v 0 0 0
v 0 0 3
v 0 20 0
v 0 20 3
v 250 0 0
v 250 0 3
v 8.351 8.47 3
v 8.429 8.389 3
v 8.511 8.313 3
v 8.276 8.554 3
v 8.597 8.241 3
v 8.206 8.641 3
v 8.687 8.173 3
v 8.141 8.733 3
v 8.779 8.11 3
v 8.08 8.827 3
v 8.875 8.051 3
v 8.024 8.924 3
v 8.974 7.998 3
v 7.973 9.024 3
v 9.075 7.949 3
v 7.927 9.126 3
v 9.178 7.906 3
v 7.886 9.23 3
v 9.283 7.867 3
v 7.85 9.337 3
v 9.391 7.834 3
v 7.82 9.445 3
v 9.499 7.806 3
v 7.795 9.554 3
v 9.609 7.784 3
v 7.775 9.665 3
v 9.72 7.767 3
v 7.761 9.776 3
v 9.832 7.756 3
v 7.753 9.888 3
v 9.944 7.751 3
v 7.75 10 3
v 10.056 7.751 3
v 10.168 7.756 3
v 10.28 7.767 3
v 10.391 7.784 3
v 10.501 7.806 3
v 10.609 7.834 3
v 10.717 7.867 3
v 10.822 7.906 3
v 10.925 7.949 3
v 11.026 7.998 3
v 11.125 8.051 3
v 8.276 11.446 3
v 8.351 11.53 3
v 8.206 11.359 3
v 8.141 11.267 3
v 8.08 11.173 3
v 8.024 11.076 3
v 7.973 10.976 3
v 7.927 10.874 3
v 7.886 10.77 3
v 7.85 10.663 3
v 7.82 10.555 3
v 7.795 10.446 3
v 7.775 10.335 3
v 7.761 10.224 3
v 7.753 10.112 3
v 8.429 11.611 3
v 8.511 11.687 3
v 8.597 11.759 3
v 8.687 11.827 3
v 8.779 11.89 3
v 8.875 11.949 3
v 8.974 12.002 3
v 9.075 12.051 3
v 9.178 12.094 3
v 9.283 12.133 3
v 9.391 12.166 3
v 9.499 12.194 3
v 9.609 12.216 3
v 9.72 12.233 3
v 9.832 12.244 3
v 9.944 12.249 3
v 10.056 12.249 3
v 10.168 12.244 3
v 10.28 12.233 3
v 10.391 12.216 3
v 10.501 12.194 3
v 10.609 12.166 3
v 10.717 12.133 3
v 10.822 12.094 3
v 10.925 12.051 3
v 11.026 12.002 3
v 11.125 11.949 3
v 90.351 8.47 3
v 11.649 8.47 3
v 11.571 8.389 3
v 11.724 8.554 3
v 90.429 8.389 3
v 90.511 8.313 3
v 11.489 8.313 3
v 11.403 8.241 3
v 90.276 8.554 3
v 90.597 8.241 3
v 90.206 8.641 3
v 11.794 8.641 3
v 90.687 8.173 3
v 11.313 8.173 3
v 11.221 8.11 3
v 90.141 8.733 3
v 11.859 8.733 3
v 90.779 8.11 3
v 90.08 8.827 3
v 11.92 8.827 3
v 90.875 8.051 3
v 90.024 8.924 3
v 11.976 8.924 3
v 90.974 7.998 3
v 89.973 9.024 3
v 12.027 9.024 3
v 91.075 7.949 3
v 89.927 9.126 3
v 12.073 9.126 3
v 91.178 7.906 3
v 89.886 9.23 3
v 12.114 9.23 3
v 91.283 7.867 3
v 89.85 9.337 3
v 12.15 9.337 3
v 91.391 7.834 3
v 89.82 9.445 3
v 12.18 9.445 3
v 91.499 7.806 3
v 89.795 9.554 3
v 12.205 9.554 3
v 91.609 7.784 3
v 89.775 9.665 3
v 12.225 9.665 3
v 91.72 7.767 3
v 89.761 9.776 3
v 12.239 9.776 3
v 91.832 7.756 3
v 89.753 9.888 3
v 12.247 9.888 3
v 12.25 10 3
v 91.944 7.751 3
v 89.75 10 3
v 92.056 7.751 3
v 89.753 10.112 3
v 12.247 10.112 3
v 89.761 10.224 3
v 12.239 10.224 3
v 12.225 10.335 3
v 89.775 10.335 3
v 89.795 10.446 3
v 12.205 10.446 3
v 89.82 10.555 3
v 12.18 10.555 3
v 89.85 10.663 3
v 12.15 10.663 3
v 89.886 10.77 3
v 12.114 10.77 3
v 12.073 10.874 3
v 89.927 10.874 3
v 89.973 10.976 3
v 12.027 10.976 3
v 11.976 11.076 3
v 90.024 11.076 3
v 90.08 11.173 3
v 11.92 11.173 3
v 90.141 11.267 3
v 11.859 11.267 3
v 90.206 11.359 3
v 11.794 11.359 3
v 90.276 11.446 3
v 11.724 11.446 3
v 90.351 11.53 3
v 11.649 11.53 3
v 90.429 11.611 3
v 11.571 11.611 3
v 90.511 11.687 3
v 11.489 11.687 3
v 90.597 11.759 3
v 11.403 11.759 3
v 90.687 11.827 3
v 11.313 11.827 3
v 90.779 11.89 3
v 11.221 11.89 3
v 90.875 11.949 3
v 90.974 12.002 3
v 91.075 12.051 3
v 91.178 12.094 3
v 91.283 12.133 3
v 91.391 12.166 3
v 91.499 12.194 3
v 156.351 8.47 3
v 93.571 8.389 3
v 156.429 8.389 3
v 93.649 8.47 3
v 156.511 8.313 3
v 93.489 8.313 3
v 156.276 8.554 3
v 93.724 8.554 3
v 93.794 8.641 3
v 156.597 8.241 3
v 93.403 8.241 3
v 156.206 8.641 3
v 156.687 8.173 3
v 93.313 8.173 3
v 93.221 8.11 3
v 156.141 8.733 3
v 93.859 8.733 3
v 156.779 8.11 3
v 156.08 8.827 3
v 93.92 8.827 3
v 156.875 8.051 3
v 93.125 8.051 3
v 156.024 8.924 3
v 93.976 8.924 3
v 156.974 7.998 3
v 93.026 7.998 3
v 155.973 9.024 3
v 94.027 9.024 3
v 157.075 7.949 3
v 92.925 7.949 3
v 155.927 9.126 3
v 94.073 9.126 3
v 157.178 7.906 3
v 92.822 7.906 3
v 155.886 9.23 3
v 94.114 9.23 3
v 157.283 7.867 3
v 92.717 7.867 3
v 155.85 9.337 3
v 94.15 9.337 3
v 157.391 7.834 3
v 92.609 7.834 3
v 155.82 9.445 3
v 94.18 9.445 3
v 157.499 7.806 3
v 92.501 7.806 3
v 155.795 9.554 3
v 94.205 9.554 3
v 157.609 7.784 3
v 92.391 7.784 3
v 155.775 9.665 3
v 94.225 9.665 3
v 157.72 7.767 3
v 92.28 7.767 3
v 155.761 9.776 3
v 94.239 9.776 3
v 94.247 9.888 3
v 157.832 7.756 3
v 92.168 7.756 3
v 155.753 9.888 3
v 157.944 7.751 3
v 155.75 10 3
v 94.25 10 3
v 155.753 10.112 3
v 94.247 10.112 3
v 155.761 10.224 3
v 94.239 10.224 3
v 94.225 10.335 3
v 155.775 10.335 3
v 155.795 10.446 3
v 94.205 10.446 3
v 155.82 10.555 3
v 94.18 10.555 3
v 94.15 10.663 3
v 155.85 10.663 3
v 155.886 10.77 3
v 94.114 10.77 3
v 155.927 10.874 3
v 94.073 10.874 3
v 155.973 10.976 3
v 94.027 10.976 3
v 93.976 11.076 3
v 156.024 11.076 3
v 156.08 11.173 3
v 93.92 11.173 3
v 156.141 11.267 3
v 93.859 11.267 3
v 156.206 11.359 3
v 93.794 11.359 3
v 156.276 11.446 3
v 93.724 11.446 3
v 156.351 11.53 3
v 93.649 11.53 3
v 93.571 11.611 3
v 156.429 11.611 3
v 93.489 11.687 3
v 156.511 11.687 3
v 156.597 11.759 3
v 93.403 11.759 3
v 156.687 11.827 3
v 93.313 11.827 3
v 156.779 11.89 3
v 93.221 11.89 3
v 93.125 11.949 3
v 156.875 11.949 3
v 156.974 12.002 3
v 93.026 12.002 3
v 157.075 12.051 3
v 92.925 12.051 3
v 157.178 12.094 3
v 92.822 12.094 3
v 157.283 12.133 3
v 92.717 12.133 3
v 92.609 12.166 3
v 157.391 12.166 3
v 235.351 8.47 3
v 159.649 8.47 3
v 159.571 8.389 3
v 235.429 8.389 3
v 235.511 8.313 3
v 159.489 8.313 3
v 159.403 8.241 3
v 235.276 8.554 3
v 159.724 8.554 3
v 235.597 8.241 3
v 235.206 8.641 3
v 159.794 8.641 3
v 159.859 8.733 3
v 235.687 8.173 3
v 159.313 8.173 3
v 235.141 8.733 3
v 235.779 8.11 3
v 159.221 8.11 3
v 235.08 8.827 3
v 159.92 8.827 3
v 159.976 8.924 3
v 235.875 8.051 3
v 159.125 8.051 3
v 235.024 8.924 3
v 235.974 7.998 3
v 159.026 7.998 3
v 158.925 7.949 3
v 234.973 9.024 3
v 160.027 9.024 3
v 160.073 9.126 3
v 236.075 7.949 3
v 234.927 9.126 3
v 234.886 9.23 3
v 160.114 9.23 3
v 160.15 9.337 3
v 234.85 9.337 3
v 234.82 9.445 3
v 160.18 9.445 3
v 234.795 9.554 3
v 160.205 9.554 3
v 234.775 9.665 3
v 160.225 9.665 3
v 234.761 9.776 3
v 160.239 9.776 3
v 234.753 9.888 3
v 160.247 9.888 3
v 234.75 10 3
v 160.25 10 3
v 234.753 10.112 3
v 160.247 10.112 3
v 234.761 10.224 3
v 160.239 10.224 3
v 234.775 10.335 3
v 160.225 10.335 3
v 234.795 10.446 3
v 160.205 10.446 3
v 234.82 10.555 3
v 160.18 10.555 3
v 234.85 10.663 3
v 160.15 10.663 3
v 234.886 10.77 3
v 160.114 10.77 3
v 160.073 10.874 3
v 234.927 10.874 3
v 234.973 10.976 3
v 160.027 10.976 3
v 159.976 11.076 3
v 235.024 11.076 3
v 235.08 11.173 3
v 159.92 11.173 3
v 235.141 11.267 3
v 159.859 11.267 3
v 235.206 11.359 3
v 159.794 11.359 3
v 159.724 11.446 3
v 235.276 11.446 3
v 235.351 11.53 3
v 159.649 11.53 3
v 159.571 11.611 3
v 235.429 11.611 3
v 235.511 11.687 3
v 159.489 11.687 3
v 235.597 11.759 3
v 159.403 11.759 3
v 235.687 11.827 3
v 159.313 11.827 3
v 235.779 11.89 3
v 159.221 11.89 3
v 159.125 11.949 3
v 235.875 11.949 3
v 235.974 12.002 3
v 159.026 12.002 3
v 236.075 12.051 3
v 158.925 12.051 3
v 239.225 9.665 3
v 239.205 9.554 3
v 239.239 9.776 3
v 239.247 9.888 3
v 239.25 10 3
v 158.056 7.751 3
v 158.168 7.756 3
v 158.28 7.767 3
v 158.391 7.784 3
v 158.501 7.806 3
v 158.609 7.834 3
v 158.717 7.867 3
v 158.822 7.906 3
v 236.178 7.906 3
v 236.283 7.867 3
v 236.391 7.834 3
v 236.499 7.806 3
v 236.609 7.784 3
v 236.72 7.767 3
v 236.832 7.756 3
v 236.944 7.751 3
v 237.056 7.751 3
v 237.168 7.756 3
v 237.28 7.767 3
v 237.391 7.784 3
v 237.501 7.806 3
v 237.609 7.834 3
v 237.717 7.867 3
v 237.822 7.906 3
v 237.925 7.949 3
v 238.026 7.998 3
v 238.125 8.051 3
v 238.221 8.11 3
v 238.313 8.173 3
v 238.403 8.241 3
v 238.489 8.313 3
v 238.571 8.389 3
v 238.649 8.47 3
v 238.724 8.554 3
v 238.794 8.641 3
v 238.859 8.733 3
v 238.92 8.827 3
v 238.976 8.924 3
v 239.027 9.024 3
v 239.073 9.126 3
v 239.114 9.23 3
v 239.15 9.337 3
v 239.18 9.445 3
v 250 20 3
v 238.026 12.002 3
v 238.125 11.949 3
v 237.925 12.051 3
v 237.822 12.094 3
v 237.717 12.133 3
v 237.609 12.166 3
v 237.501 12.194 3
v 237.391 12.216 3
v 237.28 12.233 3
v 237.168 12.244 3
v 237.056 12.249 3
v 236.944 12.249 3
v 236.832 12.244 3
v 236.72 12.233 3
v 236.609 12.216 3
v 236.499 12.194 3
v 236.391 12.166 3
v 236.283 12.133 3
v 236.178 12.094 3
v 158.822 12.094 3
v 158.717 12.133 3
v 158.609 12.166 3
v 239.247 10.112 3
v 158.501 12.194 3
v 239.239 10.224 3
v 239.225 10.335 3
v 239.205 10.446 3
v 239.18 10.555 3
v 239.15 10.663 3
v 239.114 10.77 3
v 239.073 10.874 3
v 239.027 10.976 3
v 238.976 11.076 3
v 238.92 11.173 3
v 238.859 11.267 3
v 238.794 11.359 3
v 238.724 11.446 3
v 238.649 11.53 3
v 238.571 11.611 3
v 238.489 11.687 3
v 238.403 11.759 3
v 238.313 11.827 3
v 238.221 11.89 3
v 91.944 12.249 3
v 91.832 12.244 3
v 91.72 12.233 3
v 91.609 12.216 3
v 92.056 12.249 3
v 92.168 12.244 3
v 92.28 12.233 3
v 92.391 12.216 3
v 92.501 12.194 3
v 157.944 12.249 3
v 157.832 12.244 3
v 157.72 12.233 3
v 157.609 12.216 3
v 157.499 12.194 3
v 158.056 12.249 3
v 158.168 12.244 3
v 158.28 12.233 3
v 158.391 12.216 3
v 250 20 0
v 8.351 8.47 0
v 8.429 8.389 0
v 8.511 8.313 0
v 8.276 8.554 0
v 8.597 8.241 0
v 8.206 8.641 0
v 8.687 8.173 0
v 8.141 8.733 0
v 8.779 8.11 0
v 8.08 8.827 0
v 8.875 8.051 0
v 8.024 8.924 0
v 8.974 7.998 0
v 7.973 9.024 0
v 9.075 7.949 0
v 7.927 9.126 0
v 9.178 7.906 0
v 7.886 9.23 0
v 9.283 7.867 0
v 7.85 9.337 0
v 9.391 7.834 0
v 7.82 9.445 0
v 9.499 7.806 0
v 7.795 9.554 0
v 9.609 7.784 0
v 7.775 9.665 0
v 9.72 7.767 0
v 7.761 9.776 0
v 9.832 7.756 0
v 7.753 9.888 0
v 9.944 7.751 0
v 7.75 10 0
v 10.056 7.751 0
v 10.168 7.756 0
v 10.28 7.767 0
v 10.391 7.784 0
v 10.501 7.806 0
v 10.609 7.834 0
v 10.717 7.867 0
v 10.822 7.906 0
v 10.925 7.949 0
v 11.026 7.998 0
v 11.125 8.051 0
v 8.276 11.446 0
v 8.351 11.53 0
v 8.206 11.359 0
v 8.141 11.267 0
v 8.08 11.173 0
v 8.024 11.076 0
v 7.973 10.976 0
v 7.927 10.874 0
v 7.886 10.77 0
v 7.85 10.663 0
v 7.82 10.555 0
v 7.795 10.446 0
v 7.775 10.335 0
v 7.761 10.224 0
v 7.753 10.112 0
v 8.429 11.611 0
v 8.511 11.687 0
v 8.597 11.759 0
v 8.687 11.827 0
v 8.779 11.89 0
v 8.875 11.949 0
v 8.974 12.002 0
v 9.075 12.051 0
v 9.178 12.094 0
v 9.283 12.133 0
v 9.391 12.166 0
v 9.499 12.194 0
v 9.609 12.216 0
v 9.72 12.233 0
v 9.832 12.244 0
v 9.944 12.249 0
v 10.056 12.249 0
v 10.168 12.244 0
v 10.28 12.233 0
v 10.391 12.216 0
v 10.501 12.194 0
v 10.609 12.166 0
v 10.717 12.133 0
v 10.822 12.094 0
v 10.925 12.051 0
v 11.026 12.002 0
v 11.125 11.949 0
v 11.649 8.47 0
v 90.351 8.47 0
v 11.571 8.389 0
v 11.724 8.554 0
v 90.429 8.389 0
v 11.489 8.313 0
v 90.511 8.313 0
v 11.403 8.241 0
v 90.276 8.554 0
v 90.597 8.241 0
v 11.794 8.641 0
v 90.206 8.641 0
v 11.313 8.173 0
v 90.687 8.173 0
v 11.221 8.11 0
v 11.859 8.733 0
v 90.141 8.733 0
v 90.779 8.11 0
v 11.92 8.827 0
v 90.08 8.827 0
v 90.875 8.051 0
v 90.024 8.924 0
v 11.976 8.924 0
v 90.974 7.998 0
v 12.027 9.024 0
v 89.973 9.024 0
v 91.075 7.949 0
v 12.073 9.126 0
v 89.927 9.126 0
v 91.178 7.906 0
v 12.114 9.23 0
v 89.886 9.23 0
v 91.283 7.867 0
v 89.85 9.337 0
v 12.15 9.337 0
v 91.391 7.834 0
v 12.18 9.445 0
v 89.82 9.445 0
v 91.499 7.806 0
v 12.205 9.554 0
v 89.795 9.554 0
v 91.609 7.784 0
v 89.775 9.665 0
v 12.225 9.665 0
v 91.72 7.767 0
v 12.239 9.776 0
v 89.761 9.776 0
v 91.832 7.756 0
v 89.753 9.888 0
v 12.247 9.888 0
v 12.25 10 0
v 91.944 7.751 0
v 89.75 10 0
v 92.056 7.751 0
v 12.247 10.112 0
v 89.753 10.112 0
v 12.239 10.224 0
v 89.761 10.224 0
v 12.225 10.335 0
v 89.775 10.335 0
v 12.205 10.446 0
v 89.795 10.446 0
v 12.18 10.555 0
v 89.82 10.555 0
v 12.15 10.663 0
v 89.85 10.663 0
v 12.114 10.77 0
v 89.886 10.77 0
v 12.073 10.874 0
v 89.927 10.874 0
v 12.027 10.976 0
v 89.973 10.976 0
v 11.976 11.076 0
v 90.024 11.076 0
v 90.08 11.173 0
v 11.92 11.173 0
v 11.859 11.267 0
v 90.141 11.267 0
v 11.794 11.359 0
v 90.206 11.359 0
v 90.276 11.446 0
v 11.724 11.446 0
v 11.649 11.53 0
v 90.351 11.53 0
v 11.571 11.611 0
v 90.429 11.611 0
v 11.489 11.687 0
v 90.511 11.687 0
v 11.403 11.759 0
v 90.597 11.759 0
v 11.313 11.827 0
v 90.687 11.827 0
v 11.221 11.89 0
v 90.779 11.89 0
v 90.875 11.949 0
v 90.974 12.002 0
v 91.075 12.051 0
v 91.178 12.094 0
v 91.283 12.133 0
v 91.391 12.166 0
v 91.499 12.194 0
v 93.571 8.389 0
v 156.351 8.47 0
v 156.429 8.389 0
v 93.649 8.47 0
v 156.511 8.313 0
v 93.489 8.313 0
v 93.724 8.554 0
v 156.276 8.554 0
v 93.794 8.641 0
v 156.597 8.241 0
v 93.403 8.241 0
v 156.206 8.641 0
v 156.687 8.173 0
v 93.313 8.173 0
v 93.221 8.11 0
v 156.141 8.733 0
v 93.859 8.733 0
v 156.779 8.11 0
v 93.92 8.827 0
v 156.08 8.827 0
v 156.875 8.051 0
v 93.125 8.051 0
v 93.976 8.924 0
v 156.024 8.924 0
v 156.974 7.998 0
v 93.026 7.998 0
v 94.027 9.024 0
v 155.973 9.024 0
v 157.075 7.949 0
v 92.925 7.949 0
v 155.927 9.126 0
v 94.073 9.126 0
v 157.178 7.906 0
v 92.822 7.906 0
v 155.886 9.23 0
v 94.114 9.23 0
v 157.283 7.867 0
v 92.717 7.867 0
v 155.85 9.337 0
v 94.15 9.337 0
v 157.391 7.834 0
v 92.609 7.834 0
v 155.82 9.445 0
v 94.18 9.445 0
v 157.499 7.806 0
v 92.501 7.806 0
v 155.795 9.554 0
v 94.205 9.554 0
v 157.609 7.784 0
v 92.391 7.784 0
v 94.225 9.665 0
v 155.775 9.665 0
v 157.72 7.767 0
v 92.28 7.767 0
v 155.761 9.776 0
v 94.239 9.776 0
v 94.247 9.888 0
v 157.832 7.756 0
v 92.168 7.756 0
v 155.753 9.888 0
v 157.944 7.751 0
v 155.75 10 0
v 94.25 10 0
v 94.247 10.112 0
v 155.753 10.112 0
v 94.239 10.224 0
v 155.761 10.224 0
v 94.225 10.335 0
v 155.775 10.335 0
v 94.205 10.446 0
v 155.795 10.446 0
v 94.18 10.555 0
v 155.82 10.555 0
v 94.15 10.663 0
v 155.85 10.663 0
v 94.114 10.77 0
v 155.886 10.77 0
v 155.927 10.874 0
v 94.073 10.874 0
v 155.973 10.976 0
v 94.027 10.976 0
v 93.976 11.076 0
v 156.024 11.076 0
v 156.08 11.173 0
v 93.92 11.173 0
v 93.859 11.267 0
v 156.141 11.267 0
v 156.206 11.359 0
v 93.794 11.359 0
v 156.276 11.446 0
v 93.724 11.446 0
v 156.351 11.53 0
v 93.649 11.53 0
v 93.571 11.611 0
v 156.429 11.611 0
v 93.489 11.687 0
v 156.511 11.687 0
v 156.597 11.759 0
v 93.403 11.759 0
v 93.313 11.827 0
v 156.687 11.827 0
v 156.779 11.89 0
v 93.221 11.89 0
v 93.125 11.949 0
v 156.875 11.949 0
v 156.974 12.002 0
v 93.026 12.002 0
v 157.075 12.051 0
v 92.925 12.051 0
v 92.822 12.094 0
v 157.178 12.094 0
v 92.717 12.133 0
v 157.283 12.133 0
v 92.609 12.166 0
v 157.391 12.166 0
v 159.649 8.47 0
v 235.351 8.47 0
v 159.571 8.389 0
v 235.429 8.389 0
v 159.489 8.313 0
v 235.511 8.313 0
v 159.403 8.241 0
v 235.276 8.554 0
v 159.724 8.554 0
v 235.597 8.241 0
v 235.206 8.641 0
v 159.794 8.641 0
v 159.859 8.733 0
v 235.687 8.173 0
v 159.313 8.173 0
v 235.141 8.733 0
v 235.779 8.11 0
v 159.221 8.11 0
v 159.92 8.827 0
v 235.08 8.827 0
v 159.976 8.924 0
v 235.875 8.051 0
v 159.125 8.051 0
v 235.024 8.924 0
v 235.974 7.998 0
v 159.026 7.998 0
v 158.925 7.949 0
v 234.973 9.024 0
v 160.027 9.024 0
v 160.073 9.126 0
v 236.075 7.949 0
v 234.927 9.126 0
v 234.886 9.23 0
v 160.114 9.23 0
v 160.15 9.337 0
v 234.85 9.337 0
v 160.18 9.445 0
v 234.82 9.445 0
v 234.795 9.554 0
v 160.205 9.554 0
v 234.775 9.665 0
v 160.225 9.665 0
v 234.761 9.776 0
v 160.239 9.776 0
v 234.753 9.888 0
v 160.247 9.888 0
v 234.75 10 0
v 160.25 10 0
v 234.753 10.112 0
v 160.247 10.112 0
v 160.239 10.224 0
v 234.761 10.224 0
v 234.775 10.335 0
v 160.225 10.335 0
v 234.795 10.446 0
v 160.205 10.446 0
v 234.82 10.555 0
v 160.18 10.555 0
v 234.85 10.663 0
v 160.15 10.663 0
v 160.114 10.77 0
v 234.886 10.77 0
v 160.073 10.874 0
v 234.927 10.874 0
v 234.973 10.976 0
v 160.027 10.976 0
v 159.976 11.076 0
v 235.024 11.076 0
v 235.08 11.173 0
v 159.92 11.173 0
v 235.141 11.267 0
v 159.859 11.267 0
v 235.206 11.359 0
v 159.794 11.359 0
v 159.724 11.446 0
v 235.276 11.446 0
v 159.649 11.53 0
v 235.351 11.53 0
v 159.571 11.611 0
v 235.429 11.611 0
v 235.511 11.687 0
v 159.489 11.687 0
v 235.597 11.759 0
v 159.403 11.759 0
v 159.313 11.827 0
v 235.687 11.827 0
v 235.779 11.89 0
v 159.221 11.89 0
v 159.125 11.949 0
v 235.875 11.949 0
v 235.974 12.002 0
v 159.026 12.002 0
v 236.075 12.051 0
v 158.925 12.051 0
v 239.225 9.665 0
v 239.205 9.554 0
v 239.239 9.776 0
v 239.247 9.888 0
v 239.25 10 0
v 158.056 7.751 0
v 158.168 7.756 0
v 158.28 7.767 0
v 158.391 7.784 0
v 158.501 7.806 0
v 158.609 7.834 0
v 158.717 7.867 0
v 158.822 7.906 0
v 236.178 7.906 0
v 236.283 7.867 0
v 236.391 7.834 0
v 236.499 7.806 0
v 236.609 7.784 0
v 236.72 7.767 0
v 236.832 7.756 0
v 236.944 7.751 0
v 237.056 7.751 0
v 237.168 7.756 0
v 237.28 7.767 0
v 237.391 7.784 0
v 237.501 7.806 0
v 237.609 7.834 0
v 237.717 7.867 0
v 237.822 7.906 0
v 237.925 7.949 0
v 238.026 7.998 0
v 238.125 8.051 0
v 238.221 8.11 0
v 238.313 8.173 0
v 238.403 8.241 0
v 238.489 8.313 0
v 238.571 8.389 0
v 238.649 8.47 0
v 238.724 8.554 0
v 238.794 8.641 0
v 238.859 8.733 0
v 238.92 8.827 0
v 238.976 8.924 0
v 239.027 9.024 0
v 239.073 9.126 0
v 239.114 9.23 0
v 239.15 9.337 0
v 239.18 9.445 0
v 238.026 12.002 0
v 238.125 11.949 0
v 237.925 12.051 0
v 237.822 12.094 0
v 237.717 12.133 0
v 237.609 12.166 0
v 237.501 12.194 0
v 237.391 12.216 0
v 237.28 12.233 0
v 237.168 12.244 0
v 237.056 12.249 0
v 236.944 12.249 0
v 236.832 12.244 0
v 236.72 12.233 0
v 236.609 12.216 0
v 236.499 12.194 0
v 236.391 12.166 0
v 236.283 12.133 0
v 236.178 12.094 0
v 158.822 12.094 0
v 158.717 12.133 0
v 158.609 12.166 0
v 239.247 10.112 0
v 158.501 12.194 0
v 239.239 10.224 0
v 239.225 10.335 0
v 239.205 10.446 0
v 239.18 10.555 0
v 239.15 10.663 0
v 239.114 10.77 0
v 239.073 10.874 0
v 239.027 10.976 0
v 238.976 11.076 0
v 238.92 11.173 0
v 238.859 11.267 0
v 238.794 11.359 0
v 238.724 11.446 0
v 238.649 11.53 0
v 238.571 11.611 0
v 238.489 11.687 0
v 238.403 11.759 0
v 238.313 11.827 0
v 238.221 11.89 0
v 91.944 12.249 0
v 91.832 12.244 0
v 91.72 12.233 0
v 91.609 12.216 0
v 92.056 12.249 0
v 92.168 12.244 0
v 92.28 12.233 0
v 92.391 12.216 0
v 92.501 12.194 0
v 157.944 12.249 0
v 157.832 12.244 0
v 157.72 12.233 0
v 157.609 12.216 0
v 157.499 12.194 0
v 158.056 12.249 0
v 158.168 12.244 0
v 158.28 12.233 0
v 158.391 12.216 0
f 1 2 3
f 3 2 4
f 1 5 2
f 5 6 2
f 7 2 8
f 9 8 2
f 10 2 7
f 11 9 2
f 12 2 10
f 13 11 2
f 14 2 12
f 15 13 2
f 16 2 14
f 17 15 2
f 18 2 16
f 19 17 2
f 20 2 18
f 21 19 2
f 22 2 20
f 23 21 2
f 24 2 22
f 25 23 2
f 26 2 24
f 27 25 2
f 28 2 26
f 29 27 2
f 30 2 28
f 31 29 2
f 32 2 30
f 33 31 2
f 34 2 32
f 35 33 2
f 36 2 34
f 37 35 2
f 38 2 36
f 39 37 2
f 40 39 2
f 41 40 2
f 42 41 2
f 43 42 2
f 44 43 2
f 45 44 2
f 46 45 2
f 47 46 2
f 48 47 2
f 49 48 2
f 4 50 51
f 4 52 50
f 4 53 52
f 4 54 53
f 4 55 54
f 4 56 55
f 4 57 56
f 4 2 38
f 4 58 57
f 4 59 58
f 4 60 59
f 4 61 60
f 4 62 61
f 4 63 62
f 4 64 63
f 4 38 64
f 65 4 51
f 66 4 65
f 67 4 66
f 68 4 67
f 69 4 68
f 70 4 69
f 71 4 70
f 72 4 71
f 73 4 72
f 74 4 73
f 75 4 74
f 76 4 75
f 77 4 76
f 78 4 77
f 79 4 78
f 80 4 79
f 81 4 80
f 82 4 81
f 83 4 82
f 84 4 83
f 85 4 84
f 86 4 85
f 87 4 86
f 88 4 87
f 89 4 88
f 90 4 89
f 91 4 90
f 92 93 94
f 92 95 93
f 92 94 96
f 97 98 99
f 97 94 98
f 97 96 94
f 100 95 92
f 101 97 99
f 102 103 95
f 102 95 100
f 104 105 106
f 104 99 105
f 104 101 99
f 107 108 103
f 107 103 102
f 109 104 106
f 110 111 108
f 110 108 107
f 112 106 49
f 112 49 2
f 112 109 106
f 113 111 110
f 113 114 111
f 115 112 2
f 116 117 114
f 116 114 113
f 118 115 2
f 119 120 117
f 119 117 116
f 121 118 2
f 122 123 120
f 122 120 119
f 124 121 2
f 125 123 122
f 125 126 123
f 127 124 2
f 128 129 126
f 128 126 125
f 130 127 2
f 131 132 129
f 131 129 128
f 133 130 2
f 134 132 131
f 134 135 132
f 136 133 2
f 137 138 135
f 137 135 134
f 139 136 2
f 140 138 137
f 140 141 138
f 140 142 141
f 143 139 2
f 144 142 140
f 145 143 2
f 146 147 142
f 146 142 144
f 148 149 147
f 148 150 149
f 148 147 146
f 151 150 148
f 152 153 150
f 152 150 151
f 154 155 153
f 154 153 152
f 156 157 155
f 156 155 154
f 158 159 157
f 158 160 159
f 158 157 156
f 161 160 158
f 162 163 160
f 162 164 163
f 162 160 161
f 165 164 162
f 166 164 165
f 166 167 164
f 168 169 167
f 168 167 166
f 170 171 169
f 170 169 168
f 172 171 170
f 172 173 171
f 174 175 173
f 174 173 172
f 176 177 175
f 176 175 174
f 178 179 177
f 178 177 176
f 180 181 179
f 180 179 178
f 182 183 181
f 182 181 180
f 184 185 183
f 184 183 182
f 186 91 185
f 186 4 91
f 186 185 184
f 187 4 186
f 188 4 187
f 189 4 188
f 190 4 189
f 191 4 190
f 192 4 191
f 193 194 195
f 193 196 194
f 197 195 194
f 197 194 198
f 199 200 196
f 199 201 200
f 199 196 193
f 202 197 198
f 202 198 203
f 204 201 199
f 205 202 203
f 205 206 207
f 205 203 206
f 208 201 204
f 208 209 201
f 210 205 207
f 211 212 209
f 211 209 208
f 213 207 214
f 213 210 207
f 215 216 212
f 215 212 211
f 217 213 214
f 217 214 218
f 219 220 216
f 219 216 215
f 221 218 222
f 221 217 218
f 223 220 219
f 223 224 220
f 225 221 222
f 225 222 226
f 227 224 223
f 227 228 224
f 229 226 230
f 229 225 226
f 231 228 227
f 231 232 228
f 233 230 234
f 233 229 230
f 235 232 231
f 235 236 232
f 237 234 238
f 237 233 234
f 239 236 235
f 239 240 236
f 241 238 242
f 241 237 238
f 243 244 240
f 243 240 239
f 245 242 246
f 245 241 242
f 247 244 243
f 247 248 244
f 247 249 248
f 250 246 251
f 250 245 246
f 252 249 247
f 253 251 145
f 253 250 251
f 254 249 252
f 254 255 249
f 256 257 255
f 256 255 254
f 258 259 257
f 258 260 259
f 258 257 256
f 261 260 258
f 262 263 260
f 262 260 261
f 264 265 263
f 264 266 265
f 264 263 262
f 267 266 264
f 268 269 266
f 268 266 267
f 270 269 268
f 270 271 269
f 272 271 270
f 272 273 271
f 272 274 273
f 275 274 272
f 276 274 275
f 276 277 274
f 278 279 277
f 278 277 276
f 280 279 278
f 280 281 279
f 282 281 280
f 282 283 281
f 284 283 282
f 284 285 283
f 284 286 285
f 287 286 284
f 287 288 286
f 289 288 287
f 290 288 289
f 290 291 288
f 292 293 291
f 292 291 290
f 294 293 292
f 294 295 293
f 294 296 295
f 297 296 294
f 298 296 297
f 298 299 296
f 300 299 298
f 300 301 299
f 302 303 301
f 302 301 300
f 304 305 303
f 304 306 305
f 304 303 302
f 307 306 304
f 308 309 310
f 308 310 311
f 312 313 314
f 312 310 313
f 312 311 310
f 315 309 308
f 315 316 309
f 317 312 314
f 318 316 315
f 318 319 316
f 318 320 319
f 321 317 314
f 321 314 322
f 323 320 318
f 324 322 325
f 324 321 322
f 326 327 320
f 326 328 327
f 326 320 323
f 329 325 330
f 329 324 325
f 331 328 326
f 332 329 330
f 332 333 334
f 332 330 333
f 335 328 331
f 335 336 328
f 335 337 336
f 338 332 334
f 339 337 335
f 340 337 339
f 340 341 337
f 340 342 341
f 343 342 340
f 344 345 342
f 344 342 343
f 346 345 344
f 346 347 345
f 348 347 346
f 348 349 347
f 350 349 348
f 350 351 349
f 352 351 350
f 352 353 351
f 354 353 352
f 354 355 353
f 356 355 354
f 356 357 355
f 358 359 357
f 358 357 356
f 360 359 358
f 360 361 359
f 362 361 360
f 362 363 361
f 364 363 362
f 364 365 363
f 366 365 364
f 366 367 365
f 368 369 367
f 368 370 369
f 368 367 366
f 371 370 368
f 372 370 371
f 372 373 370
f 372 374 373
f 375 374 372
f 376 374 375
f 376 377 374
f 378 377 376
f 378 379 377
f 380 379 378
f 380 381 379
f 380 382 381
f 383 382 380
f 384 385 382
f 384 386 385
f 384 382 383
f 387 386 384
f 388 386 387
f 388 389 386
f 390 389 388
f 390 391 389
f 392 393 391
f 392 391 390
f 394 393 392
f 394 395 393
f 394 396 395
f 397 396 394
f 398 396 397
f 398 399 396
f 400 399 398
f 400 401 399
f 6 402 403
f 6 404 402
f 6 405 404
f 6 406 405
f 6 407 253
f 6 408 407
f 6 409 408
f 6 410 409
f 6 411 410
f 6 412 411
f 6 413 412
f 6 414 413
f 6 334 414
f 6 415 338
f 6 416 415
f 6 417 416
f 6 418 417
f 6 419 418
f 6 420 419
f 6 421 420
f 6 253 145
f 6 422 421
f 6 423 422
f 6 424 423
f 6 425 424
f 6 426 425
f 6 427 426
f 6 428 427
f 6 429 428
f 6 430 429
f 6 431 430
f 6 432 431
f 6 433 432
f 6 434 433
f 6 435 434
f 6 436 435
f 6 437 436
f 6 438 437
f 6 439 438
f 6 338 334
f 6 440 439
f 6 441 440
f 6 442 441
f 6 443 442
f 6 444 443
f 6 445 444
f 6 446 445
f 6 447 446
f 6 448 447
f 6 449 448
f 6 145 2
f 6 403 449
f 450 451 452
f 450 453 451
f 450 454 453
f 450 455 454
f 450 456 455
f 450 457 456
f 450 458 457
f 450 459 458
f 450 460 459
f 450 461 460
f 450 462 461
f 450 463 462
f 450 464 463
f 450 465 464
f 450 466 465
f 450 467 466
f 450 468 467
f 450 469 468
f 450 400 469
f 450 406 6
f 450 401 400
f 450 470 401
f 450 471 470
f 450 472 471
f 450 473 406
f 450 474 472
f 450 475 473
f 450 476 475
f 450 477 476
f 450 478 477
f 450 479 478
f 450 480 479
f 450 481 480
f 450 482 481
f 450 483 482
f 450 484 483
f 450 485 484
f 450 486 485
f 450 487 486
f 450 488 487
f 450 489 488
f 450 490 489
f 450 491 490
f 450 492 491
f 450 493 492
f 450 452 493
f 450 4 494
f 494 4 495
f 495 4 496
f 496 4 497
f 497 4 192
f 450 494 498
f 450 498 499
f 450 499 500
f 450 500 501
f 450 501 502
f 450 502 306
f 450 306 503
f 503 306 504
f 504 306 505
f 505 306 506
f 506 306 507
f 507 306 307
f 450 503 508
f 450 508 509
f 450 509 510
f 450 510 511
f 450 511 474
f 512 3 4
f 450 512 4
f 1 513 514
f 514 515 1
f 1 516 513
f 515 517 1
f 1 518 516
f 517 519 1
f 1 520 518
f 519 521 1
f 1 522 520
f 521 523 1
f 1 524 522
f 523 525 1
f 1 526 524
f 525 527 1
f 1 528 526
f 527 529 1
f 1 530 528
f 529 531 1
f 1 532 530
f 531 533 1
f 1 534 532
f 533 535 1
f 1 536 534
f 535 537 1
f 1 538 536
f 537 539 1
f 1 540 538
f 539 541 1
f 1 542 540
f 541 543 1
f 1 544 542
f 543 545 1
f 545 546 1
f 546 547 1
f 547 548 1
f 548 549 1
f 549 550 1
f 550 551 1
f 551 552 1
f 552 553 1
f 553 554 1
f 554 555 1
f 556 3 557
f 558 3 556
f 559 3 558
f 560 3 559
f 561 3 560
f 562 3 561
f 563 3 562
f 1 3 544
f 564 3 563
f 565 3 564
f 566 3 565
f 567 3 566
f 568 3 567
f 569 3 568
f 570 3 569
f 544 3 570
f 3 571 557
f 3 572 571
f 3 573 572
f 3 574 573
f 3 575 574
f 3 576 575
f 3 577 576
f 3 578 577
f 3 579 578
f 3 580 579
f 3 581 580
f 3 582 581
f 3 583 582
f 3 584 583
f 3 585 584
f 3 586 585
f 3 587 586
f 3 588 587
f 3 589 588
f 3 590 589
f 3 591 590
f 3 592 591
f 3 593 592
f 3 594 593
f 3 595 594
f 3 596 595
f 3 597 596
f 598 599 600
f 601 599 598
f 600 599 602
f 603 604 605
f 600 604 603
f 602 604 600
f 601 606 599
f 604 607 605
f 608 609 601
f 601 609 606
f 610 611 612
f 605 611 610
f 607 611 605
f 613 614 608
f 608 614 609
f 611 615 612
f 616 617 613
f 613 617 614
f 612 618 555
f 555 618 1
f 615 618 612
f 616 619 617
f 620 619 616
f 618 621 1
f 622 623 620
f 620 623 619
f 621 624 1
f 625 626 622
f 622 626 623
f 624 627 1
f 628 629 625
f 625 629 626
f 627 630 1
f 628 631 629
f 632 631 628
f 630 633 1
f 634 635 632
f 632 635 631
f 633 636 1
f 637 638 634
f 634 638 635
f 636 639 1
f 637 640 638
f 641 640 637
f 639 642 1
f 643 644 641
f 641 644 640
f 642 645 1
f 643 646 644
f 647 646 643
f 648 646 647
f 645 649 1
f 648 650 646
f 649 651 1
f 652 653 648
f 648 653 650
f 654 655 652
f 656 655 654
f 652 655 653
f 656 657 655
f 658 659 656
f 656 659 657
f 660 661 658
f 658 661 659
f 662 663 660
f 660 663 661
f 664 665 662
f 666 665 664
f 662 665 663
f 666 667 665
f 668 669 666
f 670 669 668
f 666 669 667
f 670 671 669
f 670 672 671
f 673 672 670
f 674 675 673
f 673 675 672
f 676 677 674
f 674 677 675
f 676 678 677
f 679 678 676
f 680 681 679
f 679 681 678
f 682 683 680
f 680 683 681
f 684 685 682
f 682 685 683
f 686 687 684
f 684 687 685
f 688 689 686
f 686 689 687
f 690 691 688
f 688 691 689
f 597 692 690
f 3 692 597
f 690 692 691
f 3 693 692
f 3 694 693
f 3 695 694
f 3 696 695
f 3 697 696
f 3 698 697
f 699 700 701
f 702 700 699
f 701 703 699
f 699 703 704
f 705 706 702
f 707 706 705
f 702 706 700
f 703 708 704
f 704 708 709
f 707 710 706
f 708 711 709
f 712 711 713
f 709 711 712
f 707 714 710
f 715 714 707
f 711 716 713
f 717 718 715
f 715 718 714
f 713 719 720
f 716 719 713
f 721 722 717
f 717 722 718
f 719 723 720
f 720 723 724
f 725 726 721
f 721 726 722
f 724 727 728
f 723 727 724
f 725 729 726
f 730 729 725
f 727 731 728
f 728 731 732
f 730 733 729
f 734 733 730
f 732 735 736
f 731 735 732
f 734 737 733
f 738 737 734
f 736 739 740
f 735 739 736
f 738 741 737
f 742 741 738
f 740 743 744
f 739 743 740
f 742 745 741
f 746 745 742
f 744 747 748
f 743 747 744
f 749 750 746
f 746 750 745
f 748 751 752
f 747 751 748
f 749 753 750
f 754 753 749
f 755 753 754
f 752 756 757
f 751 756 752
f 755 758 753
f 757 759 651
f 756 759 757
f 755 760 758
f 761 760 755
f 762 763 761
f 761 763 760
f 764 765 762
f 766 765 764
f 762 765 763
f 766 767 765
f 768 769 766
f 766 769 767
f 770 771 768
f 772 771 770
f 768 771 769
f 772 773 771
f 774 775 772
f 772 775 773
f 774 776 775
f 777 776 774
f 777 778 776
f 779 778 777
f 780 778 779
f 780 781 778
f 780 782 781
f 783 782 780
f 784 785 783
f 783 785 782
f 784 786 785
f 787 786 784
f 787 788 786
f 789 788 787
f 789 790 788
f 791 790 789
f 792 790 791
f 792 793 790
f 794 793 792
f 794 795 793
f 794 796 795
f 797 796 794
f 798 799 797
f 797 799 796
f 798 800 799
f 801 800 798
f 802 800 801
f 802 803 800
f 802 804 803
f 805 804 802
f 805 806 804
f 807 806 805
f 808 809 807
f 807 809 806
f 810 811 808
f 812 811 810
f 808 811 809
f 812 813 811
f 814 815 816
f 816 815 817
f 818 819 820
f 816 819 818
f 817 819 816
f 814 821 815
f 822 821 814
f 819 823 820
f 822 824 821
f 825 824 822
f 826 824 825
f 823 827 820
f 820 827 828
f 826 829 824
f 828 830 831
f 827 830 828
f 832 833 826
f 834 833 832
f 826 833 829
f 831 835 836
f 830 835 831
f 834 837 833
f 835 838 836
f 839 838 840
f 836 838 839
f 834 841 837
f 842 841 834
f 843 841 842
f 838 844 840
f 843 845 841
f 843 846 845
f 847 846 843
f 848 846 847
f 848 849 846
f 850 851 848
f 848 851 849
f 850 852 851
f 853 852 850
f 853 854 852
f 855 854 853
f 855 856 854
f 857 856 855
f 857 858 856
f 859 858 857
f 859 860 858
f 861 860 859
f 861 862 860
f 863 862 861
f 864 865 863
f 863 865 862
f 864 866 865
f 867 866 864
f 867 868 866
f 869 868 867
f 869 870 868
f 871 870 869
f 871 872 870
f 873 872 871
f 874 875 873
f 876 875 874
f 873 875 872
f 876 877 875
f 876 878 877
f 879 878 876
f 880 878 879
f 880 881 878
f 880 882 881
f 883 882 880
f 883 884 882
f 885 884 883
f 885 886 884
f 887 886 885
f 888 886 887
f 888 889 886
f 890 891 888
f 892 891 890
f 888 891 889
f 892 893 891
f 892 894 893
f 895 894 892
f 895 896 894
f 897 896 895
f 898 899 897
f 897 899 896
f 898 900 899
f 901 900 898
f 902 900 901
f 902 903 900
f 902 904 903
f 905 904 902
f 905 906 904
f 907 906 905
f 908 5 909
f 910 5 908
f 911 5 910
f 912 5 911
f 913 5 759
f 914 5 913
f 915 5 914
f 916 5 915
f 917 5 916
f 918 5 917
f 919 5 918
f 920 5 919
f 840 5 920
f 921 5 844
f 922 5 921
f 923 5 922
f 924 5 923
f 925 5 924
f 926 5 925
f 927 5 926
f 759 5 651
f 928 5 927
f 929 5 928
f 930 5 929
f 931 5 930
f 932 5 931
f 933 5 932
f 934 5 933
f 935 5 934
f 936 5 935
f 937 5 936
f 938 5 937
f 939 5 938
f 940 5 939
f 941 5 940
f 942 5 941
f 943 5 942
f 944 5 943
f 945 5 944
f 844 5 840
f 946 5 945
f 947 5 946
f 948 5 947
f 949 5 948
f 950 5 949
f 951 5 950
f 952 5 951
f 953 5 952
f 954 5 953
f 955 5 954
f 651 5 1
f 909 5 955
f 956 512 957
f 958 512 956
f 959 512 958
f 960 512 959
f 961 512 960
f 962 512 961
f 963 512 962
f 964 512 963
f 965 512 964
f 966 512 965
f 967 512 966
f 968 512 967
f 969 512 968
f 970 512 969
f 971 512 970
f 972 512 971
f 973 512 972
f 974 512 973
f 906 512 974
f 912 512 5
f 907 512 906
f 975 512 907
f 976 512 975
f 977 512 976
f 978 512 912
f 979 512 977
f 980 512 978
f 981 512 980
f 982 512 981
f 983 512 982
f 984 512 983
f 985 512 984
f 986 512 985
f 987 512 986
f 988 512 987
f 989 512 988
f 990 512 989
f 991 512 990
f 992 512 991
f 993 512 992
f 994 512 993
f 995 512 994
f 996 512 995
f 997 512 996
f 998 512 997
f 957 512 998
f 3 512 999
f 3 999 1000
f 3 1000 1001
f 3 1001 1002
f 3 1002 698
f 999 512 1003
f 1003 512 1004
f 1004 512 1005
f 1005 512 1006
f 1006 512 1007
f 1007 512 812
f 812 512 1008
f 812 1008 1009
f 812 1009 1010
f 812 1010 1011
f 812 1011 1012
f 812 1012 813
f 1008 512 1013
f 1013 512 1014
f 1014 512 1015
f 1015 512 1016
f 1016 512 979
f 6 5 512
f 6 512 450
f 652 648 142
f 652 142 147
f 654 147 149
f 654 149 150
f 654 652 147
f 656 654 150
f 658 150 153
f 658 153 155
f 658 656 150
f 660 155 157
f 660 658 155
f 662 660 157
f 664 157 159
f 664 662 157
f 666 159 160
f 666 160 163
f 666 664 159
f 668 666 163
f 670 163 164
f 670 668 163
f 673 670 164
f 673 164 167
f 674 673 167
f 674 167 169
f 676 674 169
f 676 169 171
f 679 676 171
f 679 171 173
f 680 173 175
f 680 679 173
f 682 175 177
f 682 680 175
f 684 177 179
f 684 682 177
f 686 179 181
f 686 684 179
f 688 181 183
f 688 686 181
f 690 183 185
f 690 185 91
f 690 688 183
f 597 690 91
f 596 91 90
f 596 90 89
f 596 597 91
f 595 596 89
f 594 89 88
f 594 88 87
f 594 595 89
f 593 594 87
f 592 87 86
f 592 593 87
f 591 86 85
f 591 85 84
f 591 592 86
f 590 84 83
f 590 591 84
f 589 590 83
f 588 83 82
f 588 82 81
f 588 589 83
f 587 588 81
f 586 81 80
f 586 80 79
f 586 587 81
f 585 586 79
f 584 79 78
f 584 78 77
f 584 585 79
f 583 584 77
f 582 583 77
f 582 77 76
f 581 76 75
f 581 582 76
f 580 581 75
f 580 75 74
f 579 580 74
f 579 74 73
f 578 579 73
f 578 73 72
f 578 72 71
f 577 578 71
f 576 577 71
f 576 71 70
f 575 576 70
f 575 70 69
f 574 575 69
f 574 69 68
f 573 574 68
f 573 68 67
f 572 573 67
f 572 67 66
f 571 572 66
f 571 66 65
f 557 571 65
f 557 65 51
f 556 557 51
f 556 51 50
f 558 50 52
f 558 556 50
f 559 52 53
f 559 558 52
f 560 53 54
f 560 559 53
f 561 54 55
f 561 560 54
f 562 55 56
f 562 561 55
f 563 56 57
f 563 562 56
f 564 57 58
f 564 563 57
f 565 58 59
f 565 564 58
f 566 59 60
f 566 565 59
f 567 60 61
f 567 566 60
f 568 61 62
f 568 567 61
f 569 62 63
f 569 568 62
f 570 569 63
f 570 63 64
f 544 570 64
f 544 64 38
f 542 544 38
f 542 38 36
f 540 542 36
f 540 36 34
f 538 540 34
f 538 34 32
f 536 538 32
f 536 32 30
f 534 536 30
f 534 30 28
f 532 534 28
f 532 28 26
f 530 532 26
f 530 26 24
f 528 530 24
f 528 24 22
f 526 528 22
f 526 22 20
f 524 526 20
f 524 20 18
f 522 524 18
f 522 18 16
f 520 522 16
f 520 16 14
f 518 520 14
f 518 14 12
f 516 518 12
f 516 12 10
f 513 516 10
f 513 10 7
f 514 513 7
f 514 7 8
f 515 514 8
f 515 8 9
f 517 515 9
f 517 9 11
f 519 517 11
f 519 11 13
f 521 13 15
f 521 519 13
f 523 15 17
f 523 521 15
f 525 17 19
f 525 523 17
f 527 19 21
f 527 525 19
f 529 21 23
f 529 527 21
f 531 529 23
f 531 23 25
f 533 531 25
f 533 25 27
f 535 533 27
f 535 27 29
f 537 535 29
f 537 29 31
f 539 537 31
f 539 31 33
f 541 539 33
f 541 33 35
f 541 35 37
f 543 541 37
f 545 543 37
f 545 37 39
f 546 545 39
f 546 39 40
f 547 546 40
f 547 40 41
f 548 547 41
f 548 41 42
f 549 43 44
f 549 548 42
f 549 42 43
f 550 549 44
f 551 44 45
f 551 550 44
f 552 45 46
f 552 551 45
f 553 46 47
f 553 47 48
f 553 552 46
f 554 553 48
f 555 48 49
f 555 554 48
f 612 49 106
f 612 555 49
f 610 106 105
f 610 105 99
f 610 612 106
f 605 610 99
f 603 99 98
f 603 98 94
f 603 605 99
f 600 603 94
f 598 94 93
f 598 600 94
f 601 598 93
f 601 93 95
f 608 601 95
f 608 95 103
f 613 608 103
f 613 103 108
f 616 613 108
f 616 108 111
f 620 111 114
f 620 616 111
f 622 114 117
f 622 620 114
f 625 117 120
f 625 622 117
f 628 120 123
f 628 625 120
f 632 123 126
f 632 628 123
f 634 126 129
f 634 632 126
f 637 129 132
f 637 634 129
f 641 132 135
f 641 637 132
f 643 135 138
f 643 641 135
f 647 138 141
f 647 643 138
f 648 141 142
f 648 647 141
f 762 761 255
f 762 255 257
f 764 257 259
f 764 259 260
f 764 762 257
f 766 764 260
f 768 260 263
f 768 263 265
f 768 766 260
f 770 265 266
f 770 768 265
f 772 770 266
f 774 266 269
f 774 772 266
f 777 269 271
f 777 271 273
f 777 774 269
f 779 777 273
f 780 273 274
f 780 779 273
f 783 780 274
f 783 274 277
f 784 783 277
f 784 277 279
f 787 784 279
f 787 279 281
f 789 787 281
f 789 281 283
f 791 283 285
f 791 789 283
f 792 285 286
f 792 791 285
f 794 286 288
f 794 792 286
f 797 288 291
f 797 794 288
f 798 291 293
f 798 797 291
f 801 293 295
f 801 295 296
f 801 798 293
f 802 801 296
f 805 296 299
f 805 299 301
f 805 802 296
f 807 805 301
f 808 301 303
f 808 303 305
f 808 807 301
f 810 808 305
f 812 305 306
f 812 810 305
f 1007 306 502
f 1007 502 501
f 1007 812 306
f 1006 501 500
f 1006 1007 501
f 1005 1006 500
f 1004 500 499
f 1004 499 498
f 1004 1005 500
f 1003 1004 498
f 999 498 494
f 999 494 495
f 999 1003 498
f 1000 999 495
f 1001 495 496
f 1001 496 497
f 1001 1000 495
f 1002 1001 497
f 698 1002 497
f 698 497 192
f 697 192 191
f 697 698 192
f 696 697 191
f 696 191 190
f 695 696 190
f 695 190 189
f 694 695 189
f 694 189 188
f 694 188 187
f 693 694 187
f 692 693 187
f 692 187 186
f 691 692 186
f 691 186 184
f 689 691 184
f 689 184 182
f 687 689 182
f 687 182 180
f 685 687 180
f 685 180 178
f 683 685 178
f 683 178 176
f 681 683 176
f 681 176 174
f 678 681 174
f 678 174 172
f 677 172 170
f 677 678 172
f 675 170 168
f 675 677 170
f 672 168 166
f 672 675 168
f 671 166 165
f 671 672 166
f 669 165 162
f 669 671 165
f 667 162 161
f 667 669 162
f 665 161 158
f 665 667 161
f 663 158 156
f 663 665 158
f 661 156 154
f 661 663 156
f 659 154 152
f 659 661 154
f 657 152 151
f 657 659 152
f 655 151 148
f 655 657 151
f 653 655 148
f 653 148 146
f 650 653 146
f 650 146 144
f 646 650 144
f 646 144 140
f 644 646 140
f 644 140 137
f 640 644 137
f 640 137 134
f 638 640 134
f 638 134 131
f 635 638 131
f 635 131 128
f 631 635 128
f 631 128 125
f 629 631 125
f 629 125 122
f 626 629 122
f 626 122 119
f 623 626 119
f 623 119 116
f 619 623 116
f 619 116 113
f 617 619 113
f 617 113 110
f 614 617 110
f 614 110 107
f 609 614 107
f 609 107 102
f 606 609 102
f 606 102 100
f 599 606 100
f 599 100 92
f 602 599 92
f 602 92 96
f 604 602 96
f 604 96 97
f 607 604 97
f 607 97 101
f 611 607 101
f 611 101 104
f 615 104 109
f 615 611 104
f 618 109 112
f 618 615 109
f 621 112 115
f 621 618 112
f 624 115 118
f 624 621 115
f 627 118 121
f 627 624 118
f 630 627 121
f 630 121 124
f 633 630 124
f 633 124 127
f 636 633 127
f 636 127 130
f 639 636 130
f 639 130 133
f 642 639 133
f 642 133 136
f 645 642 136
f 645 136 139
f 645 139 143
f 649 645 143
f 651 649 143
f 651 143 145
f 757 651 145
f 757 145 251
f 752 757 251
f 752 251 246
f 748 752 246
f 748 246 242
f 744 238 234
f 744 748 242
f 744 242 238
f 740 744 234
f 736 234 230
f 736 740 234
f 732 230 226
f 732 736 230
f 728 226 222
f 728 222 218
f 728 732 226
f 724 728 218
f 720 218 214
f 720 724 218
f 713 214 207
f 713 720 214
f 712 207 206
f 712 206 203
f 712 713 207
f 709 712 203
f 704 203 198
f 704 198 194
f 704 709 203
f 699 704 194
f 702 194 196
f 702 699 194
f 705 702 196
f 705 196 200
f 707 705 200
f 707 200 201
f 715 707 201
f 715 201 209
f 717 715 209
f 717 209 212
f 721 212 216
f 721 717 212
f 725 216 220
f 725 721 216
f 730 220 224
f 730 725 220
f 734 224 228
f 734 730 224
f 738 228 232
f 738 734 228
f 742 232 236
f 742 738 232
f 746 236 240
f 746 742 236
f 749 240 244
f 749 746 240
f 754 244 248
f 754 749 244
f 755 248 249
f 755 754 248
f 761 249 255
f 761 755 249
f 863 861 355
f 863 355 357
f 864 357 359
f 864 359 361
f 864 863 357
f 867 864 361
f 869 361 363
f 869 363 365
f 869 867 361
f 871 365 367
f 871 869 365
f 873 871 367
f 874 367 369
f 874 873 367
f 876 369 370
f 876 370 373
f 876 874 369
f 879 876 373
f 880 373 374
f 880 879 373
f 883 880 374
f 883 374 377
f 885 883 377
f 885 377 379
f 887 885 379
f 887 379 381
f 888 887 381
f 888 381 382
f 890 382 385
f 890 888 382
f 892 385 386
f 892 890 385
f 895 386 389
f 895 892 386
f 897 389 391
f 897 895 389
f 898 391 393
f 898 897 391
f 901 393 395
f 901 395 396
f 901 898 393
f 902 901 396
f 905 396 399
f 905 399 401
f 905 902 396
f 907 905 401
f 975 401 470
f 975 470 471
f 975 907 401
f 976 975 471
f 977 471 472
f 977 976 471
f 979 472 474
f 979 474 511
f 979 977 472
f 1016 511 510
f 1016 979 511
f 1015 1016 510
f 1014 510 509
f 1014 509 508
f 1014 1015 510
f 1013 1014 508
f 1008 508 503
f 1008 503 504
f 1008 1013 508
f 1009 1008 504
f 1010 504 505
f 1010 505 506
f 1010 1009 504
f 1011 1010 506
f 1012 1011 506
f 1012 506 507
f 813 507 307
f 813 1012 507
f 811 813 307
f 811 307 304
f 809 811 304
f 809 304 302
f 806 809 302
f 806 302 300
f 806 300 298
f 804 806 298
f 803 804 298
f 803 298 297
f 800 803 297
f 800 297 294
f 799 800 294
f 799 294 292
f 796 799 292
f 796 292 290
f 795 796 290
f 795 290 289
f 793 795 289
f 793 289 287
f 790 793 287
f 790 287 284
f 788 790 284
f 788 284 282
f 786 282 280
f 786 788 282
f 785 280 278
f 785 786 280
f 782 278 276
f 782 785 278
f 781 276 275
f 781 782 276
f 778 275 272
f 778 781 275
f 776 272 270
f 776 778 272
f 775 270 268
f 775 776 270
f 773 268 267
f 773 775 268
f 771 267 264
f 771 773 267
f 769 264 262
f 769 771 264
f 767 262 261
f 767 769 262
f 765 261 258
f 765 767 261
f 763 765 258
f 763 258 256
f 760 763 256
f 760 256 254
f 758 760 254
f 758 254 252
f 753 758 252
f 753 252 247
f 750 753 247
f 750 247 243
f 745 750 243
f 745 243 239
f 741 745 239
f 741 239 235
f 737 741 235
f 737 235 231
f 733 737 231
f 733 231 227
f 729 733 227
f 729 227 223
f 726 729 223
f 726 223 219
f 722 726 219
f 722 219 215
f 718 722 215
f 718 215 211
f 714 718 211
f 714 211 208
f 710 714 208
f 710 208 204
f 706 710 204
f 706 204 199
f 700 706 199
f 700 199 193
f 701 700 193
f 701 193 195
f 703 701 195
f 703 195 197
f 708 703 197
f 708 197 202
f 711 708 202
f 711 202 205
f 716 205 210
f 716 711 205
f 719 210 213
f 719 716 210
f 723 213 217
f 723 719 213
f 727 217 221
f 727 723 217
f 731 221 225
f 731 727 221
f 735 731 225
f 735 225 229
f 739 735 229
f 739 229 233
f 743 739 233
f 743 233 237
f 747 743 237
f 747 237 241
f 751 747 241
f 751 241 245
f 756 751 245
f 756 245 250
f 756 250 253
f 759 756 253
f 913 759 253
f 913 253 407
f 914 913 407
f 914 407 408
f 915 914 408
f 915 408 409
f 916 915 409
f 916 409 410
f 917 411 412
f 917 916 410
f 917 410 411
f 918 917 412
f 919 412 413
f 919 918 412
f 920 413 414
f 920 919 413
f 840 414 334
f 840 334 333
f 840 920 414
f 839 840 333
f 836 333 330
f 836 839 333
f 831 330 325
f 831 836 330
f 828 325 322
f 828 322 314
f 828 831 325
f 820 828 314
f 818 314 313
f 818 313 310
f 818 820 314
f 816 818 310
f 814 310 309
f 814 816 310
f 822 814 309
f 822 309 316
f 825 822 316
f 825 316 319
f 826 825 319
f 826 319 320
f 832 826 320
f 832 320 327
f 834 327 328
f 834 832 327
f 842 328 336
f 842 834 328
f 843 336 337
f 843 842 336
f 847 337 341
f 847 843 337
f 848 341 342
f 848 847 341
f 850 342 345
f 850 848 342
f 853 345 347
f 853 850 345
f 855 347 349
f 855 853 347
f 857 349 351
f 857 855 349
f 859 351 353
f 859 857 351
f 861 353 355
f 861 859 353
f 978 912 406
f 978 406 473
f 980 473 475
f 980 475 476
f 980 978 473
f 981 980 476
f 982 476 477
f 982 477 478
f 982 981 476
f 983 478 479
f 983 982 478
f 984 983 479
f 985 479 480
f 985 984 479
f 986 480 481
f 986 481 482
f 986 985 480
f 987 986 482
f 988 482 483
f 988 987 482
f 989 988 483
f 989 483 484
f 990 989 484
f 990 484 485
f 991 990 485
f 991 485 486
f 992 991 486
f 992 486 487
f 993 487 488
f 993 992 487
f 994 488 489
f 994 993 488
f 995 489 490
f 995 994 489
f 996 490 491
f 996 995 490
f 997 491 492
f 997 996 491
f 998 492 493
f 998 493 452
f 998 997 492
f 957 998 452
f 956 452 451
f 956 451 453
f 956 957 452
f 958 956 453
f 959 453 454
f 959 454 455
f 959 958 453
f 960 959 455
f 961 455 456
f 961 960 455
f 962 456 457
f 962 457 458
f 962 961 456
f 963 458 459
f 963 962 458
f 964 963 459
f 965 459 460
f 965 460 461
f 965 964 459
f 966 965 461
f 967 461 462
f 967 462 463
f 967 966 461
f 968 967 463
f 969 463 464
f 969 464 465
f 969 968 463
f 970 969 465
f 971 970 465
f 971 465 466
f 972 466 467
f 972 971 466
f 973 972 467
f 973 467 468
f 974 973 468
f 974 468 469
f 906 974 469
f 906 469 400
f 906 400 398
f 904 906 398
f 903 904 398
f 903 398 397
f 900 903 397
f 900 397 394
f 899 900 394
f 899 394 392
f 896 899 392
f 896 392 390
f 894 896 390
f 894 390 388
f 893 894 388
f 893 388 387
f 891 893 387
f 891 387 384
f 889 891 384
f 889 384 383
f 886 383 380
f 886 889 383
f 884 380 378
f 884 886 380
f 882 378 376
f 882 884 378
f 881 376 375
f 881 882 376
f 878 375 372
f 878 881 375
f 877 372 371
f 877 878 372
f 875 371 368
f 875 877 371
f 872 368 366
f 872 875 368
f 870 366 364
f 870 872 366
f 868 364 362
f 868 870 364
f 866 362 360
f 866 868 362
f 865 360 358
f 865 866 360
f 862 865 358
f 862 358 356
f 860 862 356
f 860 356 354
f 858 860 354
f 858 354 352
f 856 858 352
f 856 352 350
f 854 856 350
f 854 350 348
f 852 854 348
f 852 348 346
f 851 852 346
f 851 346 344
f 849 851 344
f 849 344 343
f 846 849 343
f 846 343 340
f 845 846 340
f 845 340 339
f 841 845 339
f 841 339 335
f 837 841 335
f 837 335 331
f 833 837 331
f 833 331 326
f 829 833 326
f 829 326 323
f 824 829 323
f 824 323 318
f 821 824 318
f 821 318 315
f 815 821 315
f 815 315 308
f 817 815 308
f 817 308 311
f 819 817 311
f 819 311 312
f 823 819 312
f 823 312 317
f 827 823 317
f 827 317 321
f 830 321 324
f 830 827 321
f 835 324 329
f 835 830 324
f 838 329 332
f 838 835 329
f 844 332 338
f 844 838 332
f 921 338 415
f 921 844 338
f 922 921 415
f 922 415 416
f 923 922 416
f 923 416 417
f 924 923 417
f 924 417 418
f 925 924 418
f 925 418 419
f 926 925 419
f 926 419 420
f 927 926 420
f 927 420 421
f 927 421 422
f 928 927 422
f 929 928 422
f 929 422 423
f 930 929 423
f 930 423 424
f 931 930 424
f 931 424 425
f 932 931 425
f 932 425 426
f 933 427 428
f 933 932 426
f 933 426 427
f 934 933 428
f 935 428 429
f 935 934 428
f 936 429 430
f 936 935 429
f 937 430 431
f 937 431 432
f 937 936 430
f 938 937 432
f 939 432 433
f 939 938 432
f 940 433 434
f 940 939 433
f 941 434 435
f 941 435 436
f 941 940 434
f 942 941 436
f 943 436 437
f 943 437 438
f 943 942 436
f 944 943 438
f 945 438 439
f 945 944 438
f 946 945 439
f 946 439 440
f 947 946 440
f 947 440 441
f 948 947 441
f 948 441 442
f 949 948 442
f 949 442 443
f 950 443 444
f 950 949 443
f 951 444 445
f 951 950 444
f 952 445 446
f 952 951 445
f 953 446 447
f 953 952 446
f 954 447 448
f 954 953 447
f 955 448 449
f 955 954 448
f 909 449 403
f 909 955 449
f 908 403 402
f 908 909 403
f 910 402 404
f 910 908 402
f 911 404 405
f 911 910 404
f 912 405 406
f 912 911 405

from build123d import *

# Parameters (mm, degrees)
BOX_W             = 250
BOX_H             = 20
BOX_DEPTH         = 3
CYLINDER_R        = 2.25
CYLINDER_DEPTH    = 3
CYLINDER001_R     = 2.25
CYLINDER001_DEPTH = 3
CYLINDER002_R     = 2.25
CYLINDER002_DEPTH = 3
CYLINDER003_R     = 2.25
CYLINDER003_DEPTH = 3


with BuildPart() as part:
    # Box → Box (join)
    with BuildSketch(Plane.XY):
        with Locations((125, 10)):
            Rectangle(BOX_W, BOX_H)
    extrude(amount=BOX_DEPTH)

    # Cylinder → Cylinder (cut)
    with BuildSketch(Plane(origin=(10, 10, 0), x_dir=(1, 0, 0), z_dir=(0, 0, 1))):
        Circle(CYLINDER_R)
    extrude(amount=CYLINDER_DEPTH, mode=Mode.SUBTRACT)

    # Cylinder001 → Cylinder001 (cut)
    with BuildSketch(Plane(origin=(237, 10, 0), x_dir=(1, 0, 0), z_dir=(0, 0, 1))):
        Circle(CYLINDER001_R)
    extrude(amount=CYLINDER001_DEPTH, mode=Mode.SUBTRACT)

    # Cylinder002 → Cylinder002 (cut)
    with BuildSketch(Plane(origin=(92, 10, 0), x_dir=(1, 0, 0), z_dir=(0, 0, 1))):
        Circle(CYLINDER002_R)
    extrude(amount=CYLINDER002_DEPTH, mode=Mode.SUBTRACT)

    # Cylinder003 → Cylinder003 (cut)
    with BuildSketch(Plane(origin=(158, 10, 0), x_dir=(1, 0, 0), z_dir=(0, 0, 1))):
        Circle(CYLINDER003_R)
    extrude(amount=CYLINDER003_DEPTH, mode=Mode.SUBTRACT)


solid = part.part
